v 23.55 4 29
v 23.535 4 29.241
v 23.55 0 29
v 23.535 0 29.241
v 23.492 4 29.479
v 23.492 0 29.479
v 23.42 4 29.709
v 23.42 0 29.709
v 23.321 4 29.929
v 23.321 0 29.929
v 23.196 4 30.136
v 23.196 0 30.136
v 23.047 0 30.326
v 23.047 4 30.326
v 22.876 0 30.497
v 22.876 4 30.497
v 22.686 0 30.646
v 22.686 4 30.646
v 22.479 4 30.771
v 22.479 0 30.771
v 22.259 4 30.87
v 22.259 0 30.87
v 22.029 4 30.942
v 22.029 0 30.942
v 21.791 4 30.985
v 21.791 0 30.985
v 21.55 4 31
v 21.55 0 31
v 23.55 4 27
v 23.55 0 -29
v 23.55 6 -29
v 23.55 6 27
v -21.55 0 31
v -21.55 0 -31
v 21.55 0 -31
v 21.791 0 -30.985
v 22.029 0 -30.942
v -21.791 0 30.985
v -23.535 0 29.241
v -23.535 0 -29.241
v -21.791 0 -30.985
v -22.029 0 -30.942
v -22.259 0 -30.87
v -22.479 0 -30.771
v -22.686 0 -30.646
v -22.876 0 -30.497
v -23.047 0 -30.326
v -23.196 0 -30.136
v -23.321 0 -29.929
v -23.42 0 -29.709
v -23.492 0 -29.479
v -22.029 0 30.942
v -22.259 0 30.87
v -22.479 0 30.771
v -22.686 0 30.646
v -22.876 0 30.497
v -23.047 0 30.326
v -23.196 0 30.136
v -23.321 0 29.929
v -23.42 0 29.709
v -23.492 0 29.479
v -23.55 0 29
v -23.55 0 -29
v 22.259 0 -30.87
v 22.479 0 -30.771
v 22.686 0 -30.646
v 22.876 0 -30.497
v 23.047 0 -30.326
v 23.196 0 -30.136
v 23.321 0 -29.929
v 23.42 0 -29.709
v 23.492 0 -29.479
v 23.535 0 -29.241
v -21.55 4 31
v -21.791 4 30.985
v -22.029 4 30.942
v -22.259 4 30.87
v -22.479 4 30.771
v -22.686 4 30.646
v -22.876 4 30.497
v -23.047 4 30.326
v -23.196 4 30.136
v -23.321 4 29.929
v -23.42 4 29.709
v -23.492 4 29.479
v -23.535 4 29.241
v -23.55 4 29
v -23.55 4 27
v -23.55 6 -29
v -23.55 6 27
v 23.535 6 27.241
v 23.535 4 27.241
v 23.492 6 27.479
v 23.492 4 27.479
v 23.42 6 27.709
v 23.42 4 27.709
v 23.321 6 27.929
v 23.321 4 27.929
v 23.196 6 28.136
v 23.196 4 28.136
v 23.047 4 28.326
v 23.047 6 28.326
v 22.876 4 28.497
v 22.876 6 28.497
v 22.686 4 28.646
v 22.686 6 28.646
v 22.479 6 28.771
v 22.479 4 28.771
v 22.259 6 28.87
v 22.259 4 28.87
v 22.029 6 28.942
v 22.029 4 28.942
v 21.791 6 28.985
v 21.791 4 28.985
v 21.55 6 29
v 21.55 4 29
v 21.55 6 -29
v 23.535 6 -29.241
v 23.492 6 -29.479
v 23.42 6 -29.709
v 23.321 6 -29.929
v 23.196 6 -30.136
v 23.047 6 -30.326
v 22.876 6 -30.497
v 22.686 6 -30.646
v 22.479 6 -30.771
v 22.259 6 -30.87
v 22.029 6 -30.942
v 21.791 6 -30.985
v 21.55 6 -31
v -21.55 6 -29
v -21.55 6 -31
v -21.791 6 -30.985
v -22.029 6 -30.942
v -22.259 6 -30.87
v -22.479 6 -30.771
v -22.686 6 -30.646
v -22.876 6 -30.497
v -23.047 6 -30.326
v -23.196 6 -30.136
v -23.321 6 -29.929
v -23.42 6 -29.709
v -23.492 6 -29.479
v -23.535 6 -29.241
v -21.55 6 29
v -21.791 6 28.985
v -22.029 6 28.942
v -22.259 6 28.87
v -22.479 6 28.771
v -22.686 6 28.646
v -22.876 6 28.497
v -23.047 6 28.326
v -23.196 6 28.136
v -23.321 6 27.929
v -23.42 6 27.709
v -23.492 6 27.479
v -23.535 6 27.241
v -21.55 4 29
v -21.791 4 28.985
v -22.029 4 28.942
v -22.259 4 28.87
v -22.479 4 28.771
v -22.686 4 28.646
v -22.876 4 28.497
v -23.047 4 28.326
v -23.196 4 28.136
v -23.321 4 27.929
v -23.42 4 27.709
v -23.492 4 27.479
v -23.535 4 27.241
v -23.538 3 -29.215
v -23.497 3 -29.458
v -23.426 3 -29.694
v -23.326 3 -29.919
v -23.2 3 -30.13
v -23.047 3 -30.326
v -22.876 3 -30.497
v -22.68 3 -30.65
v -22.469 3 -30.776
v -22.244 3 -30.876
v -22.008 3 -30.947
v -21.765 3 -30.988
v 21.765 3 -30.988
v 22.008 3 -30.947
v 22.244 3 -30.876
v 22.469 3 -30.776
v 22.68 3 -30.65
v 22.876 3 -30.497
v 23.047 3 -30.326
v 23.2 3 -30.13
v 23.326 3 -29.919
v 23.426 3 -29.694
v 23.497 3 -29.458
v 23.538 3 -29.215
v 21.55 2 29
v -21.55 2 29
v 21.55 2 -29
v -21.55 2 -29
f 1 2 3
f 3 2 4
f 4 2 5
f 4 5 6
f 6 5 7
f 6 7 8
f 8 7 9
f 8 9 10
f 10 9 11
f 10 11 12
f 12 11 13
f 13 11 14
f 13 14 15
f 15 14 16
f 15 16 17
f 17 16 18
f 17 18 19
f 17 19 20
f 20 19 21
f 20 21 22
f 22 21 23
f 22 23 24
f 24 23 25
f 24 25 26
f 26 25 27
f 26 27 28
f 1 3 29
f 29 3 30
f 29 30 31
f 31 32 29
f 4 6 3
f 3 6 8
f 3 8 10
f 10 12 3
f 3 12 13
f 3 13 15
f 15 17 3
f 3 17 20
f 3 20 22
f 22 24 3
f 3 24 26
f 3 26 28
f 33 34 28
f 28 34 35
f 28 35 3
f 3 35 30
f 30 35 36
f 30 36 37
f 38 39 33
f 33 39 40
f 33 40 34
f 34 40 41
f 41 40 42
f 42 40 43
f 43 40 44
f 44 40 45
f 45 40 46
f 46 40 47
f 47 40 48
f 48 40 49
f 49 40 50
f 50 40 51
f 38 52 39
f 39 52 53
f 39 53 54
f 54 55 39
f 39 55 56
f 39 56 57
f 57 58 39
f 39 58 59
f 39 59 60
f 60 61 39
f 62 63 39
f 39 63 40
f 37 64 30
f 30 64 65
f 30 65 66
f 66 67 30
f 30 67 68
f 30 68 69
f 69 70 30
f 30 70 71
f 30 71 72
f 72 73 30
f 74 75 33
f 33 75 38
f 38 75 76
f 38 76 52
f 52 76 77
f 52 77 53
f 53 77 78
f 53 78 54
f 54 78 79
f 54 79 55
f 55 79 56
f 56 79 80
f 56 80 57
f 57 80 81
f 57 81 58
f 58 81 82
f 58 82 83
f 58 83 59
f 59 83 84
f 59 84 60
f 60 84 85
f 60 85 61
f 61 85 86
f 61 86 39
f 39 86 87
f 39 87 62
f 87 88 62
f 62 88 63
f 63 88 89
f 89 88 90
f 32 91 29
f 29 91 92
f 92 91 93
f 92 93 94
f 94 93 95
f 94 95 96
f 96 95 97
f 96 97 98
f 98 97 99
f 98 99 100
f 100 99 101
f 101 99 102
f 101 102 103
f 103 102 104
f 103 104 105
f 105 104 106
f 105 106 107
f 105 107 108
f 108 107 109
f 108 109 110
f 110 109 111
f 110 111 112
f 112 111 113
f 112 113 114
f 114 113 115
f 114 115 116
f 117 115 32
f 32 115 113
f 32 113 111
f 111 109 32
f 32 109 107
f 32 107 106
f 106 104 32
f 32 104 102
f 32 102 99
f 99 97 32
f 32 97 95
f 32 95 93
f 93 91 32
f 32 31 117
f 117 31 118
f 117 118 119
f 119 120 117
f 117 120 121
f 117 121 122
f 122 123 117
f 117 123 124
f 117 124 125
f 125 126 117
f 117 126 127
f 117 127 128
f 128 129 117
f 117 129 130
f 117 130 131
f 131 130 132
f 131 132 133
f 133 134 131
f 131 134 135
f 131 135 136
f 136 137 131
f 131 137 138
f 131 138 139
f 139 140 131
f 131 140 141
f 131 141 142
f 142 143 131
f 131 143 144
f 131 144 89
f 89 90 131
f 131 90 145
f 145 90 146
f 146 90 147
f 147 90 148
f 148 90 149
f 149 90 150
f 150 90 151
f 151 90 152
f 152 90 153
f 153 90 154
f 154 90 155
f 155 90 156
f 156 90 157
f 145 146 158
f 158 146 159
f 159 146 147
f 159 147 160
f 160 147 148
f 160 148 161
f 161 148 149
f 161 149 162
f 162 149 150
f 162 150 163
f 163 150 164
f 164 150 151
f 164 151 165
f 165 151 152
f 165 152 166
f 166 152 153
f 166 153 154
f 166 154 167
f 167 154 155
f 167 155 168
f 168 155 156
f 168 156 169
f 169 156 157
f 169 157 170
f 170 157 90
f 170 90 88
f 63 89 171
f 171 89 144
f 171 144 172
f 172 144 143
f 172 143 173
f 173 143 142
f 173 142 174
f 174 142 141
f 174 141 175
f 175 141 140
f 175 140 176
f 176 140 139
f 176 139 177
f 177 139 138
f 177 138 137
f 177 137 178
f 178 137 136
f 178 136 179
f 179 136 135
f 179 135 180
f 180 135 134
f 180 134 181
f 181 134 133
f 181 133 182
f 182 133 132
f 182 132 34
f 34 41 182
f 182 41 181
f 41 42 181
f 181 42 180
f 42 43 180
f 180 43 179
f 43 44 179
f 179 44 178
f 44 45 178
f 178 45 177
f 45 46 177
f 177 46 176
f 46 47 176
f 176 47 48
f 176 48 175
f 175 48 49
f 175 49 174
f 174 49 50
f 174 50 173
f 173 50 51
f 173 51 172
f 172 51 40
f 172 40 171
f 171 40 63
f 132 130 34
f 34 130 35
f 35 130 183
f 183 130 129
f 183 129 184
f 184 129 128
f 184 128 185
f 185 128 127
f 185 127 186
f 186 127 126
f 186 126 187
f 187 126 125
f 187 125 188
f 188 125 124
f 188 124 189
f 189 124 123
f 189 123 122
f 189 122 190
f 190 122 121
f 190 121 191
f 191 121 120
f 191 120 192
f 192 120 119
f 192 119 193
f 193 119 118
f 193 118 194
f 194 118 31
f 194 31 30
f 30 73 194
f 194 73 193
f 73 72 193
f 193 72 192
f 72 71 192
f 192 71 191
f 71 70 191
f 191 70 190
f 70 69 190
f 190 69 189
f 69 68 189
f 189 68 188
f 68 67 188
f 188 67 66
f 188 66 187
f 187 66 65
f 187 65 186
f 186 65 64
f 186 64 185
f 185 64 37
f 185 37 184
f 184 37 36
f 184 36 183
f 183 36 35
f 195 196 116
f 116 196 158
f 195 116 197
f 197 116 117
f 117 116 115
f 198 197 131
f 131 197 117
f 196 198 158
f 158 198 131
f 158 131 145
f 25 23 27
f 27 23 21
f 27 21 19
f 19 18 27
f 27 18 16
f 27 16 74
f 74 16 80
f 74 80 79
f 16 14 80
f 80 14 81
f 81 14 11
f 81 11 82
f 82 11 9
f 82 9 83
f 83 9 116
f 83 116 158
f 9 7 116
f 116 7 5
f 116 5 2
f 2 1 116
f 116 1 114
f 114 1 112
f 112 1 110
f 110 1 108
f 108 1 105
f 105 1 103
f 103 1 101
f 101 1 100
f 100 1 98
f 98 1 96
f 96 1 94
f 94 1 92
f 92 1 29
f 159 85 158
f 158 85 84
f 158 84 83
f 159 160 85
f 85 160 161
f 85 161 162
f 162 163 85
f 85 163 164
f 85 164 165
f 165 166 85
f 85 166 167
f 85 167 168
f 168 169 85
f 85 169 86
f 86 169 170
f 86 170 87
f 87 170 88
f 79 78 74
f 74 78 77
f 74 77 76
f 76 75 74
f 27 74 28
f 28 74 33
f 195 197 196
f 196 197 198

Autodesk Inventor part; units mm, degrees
ref_plane "YZ Plane" through (0, 0, 0) normal (1, 0, 0) x (0, 1, 0)
ref_plane "XZ Plane" through (0, 0, 0) normal (0, 1, 0) x (-1, 0, 0)
ref_plane "XY Plane" through (0, 0, 0) normal (0, 0, 1) x (1, 0, 0)
sketch "Sketch1" plane through (0, 0, 0) normal (0, 1, 0) x (-1, 0, 0)
  line L0 (-23.55, -31) -> (23.55, -31)
  line L1 (23.55, -31) -> (23.55, 31)
  line L2 (23.55, 31) -> (-23.55, 31)
  line L3 (-23.55, 31) -> (-23.55, -31)
  line L4 (-23.55, -31) -> (23.55, 31) construction
  line L5 (23.55, -31) -> (-23.55, 31) construction
  point P0 (0, 0)
  dimension "d0" = 47.1
  dimension "d1" = 62
extrude "Extrusion1" add sketch "Sketch1" along normal blind 2
sketch "Sketch2" plane through (0, 2, 0) normal (0, 1, 0) x (1, 0, 0)
  line L0 (-23.55, 31) -> (-23.55, -31) projected
  line L1 (23.55, -31) -> (23.55, 31) projected
  line L2 (-23.55, -31) -> (23.55, -31)
  line L3 (23.55, -31) -> (23.55, 31)
  line L4 (23.55, 31) -> (-23.55, 31)
  line L5 (-23.55, 31) -> (-23.55, -31)
  line L6 (-21.55, -29) -> (21.55, -29)
  line L7 (21.55, -29) -> (21.55, 29)
  line L8 (21.55, 29) -> (-21.55, 29)
  line L9 (-21.55, 29) -> (-21.55, -29)
  point P0 (0, 0)
  dimension "d4" = 2
  dimension "d5" = 2
  dimension "d6" = 2
  dimension "d7" = 2
extrude "Extrusion2" add sketch "Sketch2" along normal blind 2
sketch "Sketch3" plane through (0, 4, 0) normal (0, 1, 0) x (1, 0, 0)
  line L0 (-23.55, 31) -> (-23.55, -31) projected
  line L1 (23.55, 31) -> (-23.55, 31)
  line L2 (-23.55, 31) -> (-23.55, -29)
  line L3 (23.55, -29) -> (23.55, 31)
  line L4 (21.55, 29) -> (21.55, -29) projected
  line L5 (-21.55, -29) -> (-21.55, 29) projected
  line L6 (21.55, 29) -> (-21.55, 29)
  line L7 (-21.55, 29) -> (-21.55, -29)
  line L8 (-21.55, -29) -> (21.55, -29)
  line L9 (21.55, -29) -> (21.55, 29)
  line L10 (-21.55, -29) -> (-23.55, -29)
  line L11 (21.55, -29) -> (23.55, -29)
  line L12 (23.55, -31) -> (23.55, 31) projected
  line L13 (-23.55, -31) -> (23.55, -31) projected
  point P0 (0, 0)
extrude "Extrusion3" add sketch "Sketch3" along normal blind 2 contours L1 L3 L11 L4 L6 L5 L10 L0
fillet "Fillet1" radius 2 6 edges at (23.55, 2, 31) (23.55, 3, -31) (-23.55, 3, -31) (-23.55, 5, 29) (23.55, 5, 29) (-23.55, 2, 31)
properties part number "esp_shield_holder"
